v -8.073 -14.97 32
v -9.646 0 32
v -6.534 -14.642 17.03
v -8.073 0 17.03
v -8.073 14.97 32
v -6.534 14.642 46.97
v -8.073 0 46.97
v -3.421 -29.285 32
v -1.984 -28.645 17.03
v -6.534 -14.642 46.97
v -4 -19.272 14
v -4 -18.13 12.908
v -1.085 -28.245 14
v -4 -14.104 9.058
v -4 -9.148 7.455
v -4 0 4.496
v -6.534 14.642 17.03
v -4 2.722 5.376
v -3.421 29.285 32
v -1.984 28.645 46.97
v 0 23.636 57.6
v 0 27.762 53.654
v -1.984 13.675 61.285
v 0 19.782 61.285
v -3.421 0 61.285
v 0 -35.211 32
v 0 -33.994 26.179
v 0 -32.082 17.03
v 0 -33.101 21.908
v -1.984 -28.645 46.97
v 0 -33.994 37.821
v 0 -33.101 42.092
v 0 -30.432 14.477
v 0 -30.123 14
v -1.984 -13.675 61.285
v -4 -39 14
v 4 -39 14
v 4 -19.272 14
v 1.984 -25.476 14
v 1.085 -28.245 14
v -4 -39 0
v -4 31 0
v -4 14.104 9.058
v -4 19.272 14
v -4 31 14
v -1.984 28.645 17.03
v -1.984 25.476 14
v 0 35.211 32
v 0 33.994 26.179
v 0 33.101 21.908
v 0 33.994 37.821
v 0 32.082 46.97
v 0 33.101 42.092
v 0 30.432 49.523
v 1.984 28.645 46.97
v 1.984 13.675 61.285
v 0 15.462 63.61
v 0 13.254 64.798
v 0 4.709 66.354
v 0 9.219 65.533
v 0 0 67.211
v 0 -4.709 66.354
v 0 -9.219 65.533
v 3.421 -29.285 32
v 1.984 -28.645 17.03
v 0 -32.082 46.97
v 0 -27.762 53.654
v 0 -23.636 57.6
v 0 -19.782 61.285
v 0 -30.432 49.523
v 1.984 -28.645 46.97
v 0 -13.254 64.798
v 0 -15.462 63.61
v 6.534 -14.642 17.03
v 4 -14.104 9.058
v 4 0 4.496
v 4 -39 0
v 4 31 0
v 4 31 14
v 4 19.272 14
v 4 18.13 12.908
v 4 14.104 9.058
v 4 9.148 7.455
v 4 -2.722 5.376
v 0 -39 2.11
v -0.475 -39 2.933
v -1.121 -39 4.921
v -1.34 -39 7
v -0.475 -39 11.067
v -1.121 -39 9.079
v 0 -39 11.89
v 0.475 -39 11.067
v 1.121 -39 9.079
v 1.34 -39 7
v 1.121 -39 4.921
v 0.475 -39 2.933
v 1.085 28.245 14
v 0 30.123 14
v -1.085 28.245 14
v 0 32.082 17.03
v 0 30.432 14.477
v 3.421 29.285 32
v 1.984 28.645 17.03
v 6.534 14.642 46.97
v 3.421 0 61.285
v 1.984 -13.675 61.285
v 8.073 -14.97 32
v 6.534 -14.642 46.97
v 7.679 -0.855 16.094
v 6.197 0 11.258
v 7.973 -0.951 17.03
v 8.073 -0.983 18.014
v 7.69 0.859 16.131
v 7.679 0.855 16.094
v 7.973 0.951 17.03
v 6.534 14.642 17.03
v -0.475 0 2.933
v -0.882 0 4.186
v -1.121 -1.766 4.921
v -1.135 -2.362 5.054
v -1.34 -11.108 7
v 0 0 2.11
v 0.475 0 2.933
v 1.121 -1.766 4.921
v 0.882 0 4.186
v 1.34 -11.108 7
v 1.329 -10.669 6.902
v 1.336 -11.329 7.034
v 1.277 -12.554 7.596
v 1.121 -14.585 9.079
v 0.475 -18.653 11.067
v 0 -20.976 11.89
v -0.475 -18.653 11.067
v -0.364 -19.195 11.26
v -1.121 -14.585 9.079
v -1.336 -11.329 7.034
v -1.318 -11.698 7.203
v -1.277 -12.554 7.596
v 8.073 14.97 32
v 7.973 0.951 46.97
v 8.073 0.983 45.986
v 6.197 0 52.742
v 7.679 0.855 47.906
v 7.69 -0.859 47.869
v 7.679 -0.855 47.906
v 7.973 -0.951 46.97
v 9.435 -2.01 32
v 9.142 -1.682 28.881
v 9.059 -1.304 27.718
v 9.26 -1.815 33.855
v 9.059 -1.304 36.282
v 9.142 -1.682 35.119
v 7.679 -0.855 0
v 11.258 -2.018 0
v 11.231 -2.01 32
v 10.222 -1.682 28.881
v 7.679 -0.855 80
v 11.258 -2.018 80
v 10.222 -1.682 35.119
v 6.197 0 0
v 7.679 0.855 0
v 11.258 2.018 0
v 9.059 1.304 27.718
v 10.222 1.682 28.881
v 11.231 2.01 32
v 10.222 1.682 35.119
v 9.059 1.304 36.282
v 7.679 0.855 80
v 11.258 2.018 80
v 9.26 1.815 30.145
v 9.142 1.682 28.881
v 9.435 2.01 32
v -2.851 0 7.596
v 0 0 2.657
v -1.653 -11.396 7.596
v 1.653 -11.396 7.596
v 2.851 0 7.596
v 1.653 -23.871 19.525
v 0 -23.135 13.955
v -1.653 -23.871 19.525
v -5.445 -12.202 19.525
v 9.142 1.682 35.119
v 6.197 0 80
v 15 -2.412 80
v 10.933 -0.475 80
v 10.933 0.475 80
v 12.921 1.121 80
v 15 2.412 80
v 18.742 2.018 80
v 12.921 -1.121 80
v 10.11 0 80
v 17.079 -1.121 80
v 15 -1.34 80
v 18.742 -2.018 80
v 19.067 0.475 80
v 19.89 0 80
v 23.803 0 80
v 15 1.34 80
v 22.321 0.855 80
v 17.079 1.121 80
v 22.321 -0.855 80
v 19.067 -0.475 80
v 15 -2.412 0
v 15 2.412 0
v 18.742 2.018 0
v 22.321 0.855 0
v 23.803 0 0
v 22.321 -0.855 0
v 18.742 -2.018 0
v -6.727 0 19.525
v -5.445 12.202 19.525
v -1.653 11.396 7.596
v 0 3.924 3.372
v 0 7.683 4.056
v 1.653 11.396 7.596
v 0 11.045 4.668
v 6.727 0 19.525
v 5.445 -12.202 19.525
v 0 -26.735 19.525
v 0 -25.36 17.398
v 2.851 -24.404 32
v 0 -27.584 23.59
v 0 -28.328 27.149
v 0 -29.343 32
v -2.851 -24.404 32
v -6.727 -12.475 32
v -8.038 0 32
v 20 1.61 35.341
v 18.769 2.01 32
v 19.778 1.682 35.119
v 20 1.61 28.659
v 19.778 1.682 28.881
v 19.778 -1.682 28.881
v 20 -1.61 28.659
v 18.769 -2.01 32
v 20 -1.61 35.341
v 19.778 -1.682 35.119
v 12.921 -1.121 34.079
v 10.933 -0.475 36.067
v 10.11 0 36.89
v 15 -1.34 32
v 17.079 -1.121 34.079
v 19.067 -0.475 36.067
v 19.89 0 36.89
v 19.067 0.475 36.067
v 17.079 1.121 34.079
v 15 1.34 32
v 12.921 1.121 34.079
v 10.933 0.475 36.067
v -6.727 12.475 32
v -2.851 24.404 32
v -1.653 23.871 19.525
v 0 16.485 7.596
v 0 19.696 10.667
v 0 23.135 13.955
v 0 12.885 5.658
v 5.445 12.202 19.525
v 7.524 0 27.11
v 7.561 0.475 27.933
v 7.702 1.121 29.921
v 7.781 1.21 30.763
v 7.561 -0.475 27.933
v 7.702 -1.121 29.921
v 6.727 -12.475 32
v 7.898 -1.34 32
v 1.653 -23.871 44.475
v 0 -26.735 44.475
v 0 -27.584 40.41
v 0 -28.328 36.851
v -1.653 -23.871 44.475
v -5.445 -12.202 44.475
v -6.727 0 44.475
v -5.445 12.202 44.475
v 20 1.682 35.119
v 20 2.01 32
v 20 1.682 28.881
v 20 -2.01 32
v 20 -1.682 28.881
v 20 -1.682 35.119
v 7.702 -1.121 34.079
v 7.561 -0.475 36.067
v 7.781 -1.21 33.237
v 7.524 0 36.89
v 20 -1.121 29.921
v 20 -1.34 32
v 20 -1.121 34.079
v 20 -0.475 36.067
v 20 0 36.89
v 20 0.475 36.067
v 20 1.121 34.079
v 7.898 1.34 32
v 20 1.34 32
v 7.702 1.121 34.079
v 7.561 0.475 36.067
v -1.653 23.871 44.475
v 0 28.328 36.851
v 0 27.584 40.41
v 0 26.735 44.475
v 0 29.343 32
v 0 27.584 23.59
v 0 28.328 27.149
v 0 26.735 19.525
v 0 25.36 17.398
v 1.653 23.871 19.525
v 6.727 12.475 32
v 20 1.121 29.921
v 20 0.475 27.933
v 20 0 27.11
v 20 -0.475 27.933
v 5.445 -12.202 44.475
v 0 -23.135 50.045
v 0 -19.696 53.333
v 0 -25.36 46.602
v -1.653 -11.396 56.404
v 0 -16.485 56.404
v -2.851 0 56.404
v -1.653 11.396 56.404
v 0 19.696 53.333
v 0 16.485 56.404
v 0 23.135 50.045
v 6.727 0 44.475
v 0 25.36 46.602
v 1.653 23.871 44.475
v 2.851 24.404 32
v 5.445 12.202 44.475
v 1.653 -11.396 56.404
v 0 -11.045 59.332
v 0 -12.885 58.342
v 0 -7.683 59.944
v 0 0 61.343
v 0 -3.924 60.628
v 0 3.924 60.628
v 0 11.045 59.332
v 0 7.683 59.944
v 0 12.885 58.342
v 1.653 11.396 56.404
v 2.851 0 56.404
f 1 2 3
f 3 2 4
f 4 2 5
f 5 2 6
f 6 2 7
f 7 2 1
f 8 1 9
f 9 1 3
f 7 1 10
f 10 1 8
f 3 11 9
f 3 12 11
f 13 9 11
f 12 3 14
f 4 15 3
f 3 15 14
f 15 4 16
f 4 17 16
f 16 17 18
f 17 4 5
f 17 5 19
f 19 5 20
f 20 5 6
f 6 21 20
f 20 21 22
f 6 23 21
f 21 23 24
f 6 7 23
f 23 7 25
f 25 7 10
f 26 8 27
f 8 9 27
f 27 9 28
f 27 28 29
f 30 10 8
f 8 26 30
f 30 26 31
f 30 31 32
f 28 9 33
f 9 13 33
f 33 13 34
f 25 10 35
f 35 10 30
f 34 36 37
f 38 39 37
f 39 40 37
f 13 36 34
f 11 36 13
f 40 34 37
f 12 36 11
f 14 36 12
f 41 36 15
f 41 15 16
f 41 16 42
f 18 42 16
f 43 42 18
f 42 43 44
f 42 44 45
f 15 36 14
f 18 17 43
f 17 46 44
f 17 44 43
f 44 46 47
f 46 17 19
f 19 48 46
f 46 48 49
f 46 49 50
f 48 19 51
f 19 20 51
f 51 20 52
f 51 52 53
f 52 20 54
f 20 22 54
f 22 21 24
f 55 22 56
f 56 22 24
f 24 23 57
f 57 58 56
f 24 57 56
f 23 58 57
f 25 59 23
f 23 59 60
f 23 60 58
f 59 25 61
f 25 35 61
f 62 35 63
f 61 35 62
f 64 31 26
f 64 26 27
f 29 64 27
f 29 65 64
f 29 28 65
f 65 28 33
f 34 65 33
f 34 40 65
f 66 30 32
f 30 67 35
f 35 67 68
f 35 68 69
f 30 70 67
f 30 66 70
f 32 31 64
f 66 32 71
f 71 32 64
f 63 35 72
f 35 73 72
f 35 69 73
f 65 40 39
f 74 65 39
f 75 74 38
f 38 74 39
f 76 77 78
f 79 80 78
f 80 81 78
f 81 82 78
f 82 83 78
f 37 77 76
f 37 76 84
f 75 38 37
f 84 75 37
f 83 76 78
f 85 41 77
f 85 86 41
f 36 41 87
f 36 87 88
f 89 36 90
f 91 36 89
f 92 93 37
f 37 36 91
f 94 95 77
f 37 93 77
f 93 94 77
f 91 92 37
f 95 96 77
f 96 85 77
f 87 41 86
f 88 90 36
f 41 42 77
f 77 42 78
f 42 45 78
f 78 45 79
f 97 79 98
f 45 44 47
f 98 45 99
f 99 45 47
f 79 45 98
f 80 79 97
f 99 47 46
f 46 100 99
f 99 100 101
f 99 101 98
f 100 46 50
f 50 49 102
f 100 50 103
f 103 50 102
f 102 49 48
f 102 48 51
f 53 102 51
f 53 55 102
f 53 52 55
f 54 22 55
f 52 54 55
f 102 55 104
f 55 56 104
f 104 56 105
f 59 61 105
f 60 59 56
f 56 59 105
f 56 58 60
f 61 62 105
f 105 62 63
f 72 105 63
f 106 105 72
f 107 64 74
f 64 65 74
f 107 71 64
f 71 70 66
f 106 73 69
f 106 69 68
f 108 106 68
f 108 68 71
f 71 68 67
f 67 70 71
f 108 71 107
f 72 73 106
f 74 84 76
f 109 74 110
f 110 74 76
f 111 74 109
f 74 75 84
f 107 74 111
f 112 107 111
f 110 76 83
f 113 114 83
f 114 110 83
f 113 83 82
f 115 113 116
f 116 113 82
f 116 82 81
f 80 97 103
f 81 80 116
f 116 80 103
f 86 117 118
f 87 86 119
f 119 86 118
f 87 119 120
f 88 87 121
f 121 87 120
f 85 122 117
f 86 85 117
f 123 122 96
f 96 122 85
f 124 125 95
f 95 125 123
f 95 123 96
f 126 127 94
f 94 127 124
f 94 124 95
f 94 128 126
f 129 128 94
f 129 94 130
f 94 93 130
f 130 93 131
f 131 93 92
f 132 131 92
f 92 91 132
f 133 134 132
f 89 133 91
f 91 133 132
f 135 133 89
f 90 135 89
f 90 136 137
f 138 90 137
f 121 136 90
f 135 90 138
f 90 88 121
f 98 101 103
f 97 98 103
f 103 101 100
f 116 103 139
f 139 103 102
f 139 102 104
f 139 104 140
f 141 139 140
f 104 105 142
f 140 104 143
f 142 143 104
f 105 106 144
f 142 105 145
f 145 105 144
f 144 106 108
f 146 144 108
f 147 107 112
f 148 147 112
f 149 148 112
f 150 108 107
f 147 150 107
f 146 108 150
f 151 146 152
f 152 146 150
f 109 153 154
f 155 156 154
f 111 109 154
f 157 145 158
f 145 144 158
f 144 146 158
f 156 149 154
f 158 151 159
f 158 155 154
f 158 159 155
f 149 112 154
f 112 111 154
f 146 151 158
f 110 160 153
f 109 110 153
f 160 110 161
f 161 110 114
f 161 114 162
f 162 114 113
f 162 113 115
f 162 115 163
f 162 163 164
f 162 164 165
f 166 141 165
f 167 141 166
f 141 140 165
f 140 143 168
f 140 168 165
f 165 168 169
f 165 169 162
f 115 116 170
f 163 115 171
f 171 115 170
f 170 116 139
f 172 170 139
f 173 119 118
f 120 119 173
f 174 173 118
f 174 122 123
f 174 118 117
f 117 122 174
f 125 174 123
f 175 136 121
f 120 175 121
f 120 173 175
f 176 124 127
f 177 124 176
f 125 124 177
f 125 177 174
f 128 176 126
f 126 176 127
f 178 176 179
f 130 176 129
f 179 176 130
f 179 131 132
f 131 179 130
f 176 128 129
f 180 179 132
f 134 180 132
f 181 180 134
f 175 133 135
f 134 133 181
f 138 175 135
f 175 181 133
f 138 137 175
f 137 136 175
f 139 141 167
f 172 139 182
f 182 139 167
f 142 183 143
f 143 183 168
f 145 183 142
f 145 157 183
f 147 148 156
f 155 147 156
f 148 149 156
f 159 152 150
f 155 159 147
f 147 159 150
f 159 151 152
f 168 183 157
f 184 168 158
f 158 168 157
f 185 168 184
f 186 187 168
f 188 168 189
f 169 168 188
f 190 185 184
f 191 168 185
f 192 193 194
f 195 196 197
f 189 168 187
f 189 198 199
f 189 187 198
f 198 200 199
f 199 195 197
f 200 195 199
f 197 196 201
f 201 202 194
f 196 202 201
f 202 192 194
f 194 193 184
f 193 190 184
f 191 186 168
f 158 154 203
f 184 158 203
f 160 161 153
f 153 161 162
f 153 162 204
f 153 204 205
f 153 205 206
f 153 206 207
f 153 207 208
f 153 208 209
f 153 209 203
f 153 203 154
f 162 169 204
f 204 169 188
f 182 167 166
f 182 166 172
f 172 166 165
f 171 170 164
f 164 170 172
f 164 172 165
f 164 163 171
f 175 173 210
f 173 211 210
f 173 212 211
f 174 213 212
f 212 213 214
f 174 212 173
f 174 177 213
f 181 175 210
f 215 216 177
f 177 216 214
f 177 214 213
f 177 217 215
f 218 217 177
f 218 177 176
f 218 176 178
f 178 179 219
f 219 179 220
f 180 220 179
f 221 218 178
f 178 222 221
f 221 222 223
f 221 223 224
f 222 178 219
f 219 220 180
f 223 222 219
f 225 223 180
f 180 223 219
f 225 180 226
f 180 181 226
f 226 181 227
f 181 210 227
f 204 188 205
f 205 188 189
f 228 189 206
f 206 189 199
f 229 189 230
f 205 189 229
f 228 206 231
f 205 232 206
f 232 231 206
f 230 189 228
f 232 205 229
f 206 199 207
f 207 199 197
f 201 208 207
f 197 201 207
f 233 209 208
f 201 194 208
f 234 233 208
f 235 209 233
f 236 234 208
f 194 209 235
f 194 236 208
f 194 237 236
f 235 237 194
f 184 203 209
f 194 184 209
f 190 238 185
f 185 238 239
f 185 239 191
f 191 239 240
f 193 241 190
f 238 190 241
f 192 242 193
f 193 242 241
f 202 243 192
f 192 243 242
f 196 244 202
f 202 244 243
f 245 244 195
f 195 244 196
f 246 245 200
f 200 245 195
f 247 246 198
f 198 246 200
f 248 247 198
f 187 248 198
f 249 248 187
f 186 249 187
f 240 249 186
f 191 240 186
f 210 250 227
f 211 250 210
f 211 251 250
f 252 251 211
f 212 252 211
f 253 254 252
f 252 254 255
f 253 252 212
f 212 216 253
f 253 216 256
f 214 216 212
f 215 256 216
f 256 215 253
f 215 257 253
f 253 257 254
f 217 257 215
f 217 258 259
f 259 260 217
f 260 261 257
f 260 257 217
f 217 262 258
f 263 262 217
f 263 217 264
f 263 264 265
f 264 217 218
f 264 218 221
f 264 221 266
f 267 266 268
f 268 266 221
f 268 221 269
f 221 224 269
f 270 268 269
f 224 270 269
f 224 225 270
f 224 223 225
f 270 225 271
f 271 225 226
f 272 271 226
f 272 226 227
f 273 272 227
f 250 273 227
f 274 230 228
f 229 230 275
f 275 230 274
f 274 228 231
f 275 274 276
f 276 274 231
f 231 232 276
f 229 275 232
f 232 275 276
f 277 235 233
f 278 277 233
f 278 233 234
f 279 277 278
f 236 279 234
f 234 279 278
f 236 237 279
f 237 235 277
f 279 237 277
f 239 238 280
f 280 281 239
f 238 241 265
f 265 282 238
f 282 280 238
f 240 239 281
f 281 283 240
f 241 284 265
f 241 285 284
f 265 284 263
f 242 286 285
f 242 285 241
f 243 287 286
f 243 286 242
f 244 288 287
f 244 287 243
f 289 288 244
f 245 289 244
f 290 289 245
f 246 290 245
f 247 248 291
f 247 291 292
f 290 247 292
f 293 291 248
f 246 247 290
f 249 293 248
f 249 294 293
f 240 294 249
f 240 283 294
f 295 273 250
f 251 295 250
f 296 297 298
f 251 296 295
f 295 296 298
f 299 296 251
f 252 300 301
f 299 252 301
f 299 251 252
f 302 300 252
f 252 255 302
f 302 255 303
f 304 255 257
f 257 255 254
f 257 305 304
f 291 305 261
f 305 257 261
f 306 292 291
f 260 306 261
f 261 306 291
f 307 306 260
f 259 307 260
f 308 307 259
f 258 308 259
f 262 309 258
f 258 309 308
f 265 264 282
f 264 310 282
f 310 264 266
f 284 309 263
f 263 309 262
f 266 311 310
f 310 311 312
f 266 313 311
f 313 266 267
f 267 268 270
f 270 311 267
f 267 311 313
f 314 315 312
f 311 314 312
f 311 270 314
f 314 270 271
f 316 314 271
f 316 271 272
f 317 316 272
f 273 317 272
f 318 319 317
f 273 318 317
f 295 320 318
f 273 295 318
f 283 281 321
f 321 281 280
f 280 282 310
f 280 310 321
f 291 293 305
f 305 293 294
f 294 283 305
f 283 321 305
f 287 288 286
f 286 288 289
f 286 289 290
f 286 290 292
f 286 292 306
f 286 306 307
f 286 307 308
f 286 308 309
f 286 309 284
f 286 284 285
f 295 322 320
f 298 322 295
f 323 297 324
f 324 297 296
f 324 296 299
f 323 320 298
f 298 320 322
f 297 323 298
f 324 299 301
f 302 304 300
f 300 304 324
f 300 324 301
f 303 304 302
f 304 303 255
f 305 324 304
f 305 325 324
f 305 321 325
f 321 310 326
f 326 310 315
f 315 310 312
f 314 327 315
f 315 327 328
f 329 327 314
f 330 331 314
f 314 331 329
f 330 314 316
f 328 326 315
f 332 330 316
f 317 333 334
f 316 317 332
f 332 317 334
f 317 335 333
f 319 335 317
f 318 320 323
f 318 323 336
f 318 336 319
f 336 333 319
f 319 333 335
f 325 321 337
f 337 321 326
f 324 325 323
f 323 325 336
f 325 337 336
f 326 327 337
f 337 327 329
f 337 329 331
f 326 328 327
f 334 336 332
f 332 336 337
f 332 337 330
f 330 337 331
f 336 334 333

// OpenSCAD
union() {
translate([0,0,2]) difference() {
difference() {
union() {
union() {
union() {
translate([0,0,30]) intersection() {
translate([62.3538290725,0,0]) sphere(72.0); 
rotate([0,0,180]) translate([62.3538290725,0,0]) sphere(72.0); 
}
}
translate([20,0,30]) rotate([90,0,0]) rotate([0,90,0]) translate([0,0,-20]) intersection() {
translate([12.9903810568,0,0]) cylinder(20,15.0,15.0,center=false); 
rotate([0,0,180]) translate([12.9903810568,0,0]) cylinder(20,15.0,15.0,center=false); 
}
translate([15,0,-2]) rotate([0,0,90]) intersection() {
translate([15.5884572681,0,0]) cylinder(80,18.0,18.0,center=false); 
rotate([0,0,180]) translate([15.5884572681,0,0]) cylinder(80,18.0,18.0,center=false); 
}
}
translate([0,-4,5]) cube([8,70,14],center=true); 
}
translate([0,0,-14]) translate([0,-4,5]) cube([8,70,14],center=true); 
}
translate([0,0,0]) union() {
union() {
translate([0,0,5]) rotate([90,0,0]) intersection() {
translate([8.66025403784,0,0]) cylinder(40,10,10,center=false); 
rotate([0,0,180]) translate([8.66025403784,0,0]) cylinder(40,10,10,center=false); 
}
translate([0,0,30]) intersection() {
translate([51.9615242271,0,0]) sphere(60); 
rotate([0,0,180]) translate([51.9615242271,0,0]) sphere(60); 
}
}
translate([20,0,30]) rotate([90,0,0]) rotate([0,90,0]) translate([0,0,-20]) intersection() {
translate([8.66025403784,0,0]) cylinder(20,10,10,center=false); 
rotate([0,0,180]) translate([8.66025403784,0,0]) cylinder(20,10,10,center=false); 
}
translate([15,0,30]) rotate([0,0,90]) intersection() {
translate([8.66025403784,0,0]) cylinder(50,10,10,center=false); 
rotate([0,0,180]) translate([8.66025403784,0,0]) cylinder(50,10,10,center=false); 
}
}
}
%cube([30,40,50]); 
}
